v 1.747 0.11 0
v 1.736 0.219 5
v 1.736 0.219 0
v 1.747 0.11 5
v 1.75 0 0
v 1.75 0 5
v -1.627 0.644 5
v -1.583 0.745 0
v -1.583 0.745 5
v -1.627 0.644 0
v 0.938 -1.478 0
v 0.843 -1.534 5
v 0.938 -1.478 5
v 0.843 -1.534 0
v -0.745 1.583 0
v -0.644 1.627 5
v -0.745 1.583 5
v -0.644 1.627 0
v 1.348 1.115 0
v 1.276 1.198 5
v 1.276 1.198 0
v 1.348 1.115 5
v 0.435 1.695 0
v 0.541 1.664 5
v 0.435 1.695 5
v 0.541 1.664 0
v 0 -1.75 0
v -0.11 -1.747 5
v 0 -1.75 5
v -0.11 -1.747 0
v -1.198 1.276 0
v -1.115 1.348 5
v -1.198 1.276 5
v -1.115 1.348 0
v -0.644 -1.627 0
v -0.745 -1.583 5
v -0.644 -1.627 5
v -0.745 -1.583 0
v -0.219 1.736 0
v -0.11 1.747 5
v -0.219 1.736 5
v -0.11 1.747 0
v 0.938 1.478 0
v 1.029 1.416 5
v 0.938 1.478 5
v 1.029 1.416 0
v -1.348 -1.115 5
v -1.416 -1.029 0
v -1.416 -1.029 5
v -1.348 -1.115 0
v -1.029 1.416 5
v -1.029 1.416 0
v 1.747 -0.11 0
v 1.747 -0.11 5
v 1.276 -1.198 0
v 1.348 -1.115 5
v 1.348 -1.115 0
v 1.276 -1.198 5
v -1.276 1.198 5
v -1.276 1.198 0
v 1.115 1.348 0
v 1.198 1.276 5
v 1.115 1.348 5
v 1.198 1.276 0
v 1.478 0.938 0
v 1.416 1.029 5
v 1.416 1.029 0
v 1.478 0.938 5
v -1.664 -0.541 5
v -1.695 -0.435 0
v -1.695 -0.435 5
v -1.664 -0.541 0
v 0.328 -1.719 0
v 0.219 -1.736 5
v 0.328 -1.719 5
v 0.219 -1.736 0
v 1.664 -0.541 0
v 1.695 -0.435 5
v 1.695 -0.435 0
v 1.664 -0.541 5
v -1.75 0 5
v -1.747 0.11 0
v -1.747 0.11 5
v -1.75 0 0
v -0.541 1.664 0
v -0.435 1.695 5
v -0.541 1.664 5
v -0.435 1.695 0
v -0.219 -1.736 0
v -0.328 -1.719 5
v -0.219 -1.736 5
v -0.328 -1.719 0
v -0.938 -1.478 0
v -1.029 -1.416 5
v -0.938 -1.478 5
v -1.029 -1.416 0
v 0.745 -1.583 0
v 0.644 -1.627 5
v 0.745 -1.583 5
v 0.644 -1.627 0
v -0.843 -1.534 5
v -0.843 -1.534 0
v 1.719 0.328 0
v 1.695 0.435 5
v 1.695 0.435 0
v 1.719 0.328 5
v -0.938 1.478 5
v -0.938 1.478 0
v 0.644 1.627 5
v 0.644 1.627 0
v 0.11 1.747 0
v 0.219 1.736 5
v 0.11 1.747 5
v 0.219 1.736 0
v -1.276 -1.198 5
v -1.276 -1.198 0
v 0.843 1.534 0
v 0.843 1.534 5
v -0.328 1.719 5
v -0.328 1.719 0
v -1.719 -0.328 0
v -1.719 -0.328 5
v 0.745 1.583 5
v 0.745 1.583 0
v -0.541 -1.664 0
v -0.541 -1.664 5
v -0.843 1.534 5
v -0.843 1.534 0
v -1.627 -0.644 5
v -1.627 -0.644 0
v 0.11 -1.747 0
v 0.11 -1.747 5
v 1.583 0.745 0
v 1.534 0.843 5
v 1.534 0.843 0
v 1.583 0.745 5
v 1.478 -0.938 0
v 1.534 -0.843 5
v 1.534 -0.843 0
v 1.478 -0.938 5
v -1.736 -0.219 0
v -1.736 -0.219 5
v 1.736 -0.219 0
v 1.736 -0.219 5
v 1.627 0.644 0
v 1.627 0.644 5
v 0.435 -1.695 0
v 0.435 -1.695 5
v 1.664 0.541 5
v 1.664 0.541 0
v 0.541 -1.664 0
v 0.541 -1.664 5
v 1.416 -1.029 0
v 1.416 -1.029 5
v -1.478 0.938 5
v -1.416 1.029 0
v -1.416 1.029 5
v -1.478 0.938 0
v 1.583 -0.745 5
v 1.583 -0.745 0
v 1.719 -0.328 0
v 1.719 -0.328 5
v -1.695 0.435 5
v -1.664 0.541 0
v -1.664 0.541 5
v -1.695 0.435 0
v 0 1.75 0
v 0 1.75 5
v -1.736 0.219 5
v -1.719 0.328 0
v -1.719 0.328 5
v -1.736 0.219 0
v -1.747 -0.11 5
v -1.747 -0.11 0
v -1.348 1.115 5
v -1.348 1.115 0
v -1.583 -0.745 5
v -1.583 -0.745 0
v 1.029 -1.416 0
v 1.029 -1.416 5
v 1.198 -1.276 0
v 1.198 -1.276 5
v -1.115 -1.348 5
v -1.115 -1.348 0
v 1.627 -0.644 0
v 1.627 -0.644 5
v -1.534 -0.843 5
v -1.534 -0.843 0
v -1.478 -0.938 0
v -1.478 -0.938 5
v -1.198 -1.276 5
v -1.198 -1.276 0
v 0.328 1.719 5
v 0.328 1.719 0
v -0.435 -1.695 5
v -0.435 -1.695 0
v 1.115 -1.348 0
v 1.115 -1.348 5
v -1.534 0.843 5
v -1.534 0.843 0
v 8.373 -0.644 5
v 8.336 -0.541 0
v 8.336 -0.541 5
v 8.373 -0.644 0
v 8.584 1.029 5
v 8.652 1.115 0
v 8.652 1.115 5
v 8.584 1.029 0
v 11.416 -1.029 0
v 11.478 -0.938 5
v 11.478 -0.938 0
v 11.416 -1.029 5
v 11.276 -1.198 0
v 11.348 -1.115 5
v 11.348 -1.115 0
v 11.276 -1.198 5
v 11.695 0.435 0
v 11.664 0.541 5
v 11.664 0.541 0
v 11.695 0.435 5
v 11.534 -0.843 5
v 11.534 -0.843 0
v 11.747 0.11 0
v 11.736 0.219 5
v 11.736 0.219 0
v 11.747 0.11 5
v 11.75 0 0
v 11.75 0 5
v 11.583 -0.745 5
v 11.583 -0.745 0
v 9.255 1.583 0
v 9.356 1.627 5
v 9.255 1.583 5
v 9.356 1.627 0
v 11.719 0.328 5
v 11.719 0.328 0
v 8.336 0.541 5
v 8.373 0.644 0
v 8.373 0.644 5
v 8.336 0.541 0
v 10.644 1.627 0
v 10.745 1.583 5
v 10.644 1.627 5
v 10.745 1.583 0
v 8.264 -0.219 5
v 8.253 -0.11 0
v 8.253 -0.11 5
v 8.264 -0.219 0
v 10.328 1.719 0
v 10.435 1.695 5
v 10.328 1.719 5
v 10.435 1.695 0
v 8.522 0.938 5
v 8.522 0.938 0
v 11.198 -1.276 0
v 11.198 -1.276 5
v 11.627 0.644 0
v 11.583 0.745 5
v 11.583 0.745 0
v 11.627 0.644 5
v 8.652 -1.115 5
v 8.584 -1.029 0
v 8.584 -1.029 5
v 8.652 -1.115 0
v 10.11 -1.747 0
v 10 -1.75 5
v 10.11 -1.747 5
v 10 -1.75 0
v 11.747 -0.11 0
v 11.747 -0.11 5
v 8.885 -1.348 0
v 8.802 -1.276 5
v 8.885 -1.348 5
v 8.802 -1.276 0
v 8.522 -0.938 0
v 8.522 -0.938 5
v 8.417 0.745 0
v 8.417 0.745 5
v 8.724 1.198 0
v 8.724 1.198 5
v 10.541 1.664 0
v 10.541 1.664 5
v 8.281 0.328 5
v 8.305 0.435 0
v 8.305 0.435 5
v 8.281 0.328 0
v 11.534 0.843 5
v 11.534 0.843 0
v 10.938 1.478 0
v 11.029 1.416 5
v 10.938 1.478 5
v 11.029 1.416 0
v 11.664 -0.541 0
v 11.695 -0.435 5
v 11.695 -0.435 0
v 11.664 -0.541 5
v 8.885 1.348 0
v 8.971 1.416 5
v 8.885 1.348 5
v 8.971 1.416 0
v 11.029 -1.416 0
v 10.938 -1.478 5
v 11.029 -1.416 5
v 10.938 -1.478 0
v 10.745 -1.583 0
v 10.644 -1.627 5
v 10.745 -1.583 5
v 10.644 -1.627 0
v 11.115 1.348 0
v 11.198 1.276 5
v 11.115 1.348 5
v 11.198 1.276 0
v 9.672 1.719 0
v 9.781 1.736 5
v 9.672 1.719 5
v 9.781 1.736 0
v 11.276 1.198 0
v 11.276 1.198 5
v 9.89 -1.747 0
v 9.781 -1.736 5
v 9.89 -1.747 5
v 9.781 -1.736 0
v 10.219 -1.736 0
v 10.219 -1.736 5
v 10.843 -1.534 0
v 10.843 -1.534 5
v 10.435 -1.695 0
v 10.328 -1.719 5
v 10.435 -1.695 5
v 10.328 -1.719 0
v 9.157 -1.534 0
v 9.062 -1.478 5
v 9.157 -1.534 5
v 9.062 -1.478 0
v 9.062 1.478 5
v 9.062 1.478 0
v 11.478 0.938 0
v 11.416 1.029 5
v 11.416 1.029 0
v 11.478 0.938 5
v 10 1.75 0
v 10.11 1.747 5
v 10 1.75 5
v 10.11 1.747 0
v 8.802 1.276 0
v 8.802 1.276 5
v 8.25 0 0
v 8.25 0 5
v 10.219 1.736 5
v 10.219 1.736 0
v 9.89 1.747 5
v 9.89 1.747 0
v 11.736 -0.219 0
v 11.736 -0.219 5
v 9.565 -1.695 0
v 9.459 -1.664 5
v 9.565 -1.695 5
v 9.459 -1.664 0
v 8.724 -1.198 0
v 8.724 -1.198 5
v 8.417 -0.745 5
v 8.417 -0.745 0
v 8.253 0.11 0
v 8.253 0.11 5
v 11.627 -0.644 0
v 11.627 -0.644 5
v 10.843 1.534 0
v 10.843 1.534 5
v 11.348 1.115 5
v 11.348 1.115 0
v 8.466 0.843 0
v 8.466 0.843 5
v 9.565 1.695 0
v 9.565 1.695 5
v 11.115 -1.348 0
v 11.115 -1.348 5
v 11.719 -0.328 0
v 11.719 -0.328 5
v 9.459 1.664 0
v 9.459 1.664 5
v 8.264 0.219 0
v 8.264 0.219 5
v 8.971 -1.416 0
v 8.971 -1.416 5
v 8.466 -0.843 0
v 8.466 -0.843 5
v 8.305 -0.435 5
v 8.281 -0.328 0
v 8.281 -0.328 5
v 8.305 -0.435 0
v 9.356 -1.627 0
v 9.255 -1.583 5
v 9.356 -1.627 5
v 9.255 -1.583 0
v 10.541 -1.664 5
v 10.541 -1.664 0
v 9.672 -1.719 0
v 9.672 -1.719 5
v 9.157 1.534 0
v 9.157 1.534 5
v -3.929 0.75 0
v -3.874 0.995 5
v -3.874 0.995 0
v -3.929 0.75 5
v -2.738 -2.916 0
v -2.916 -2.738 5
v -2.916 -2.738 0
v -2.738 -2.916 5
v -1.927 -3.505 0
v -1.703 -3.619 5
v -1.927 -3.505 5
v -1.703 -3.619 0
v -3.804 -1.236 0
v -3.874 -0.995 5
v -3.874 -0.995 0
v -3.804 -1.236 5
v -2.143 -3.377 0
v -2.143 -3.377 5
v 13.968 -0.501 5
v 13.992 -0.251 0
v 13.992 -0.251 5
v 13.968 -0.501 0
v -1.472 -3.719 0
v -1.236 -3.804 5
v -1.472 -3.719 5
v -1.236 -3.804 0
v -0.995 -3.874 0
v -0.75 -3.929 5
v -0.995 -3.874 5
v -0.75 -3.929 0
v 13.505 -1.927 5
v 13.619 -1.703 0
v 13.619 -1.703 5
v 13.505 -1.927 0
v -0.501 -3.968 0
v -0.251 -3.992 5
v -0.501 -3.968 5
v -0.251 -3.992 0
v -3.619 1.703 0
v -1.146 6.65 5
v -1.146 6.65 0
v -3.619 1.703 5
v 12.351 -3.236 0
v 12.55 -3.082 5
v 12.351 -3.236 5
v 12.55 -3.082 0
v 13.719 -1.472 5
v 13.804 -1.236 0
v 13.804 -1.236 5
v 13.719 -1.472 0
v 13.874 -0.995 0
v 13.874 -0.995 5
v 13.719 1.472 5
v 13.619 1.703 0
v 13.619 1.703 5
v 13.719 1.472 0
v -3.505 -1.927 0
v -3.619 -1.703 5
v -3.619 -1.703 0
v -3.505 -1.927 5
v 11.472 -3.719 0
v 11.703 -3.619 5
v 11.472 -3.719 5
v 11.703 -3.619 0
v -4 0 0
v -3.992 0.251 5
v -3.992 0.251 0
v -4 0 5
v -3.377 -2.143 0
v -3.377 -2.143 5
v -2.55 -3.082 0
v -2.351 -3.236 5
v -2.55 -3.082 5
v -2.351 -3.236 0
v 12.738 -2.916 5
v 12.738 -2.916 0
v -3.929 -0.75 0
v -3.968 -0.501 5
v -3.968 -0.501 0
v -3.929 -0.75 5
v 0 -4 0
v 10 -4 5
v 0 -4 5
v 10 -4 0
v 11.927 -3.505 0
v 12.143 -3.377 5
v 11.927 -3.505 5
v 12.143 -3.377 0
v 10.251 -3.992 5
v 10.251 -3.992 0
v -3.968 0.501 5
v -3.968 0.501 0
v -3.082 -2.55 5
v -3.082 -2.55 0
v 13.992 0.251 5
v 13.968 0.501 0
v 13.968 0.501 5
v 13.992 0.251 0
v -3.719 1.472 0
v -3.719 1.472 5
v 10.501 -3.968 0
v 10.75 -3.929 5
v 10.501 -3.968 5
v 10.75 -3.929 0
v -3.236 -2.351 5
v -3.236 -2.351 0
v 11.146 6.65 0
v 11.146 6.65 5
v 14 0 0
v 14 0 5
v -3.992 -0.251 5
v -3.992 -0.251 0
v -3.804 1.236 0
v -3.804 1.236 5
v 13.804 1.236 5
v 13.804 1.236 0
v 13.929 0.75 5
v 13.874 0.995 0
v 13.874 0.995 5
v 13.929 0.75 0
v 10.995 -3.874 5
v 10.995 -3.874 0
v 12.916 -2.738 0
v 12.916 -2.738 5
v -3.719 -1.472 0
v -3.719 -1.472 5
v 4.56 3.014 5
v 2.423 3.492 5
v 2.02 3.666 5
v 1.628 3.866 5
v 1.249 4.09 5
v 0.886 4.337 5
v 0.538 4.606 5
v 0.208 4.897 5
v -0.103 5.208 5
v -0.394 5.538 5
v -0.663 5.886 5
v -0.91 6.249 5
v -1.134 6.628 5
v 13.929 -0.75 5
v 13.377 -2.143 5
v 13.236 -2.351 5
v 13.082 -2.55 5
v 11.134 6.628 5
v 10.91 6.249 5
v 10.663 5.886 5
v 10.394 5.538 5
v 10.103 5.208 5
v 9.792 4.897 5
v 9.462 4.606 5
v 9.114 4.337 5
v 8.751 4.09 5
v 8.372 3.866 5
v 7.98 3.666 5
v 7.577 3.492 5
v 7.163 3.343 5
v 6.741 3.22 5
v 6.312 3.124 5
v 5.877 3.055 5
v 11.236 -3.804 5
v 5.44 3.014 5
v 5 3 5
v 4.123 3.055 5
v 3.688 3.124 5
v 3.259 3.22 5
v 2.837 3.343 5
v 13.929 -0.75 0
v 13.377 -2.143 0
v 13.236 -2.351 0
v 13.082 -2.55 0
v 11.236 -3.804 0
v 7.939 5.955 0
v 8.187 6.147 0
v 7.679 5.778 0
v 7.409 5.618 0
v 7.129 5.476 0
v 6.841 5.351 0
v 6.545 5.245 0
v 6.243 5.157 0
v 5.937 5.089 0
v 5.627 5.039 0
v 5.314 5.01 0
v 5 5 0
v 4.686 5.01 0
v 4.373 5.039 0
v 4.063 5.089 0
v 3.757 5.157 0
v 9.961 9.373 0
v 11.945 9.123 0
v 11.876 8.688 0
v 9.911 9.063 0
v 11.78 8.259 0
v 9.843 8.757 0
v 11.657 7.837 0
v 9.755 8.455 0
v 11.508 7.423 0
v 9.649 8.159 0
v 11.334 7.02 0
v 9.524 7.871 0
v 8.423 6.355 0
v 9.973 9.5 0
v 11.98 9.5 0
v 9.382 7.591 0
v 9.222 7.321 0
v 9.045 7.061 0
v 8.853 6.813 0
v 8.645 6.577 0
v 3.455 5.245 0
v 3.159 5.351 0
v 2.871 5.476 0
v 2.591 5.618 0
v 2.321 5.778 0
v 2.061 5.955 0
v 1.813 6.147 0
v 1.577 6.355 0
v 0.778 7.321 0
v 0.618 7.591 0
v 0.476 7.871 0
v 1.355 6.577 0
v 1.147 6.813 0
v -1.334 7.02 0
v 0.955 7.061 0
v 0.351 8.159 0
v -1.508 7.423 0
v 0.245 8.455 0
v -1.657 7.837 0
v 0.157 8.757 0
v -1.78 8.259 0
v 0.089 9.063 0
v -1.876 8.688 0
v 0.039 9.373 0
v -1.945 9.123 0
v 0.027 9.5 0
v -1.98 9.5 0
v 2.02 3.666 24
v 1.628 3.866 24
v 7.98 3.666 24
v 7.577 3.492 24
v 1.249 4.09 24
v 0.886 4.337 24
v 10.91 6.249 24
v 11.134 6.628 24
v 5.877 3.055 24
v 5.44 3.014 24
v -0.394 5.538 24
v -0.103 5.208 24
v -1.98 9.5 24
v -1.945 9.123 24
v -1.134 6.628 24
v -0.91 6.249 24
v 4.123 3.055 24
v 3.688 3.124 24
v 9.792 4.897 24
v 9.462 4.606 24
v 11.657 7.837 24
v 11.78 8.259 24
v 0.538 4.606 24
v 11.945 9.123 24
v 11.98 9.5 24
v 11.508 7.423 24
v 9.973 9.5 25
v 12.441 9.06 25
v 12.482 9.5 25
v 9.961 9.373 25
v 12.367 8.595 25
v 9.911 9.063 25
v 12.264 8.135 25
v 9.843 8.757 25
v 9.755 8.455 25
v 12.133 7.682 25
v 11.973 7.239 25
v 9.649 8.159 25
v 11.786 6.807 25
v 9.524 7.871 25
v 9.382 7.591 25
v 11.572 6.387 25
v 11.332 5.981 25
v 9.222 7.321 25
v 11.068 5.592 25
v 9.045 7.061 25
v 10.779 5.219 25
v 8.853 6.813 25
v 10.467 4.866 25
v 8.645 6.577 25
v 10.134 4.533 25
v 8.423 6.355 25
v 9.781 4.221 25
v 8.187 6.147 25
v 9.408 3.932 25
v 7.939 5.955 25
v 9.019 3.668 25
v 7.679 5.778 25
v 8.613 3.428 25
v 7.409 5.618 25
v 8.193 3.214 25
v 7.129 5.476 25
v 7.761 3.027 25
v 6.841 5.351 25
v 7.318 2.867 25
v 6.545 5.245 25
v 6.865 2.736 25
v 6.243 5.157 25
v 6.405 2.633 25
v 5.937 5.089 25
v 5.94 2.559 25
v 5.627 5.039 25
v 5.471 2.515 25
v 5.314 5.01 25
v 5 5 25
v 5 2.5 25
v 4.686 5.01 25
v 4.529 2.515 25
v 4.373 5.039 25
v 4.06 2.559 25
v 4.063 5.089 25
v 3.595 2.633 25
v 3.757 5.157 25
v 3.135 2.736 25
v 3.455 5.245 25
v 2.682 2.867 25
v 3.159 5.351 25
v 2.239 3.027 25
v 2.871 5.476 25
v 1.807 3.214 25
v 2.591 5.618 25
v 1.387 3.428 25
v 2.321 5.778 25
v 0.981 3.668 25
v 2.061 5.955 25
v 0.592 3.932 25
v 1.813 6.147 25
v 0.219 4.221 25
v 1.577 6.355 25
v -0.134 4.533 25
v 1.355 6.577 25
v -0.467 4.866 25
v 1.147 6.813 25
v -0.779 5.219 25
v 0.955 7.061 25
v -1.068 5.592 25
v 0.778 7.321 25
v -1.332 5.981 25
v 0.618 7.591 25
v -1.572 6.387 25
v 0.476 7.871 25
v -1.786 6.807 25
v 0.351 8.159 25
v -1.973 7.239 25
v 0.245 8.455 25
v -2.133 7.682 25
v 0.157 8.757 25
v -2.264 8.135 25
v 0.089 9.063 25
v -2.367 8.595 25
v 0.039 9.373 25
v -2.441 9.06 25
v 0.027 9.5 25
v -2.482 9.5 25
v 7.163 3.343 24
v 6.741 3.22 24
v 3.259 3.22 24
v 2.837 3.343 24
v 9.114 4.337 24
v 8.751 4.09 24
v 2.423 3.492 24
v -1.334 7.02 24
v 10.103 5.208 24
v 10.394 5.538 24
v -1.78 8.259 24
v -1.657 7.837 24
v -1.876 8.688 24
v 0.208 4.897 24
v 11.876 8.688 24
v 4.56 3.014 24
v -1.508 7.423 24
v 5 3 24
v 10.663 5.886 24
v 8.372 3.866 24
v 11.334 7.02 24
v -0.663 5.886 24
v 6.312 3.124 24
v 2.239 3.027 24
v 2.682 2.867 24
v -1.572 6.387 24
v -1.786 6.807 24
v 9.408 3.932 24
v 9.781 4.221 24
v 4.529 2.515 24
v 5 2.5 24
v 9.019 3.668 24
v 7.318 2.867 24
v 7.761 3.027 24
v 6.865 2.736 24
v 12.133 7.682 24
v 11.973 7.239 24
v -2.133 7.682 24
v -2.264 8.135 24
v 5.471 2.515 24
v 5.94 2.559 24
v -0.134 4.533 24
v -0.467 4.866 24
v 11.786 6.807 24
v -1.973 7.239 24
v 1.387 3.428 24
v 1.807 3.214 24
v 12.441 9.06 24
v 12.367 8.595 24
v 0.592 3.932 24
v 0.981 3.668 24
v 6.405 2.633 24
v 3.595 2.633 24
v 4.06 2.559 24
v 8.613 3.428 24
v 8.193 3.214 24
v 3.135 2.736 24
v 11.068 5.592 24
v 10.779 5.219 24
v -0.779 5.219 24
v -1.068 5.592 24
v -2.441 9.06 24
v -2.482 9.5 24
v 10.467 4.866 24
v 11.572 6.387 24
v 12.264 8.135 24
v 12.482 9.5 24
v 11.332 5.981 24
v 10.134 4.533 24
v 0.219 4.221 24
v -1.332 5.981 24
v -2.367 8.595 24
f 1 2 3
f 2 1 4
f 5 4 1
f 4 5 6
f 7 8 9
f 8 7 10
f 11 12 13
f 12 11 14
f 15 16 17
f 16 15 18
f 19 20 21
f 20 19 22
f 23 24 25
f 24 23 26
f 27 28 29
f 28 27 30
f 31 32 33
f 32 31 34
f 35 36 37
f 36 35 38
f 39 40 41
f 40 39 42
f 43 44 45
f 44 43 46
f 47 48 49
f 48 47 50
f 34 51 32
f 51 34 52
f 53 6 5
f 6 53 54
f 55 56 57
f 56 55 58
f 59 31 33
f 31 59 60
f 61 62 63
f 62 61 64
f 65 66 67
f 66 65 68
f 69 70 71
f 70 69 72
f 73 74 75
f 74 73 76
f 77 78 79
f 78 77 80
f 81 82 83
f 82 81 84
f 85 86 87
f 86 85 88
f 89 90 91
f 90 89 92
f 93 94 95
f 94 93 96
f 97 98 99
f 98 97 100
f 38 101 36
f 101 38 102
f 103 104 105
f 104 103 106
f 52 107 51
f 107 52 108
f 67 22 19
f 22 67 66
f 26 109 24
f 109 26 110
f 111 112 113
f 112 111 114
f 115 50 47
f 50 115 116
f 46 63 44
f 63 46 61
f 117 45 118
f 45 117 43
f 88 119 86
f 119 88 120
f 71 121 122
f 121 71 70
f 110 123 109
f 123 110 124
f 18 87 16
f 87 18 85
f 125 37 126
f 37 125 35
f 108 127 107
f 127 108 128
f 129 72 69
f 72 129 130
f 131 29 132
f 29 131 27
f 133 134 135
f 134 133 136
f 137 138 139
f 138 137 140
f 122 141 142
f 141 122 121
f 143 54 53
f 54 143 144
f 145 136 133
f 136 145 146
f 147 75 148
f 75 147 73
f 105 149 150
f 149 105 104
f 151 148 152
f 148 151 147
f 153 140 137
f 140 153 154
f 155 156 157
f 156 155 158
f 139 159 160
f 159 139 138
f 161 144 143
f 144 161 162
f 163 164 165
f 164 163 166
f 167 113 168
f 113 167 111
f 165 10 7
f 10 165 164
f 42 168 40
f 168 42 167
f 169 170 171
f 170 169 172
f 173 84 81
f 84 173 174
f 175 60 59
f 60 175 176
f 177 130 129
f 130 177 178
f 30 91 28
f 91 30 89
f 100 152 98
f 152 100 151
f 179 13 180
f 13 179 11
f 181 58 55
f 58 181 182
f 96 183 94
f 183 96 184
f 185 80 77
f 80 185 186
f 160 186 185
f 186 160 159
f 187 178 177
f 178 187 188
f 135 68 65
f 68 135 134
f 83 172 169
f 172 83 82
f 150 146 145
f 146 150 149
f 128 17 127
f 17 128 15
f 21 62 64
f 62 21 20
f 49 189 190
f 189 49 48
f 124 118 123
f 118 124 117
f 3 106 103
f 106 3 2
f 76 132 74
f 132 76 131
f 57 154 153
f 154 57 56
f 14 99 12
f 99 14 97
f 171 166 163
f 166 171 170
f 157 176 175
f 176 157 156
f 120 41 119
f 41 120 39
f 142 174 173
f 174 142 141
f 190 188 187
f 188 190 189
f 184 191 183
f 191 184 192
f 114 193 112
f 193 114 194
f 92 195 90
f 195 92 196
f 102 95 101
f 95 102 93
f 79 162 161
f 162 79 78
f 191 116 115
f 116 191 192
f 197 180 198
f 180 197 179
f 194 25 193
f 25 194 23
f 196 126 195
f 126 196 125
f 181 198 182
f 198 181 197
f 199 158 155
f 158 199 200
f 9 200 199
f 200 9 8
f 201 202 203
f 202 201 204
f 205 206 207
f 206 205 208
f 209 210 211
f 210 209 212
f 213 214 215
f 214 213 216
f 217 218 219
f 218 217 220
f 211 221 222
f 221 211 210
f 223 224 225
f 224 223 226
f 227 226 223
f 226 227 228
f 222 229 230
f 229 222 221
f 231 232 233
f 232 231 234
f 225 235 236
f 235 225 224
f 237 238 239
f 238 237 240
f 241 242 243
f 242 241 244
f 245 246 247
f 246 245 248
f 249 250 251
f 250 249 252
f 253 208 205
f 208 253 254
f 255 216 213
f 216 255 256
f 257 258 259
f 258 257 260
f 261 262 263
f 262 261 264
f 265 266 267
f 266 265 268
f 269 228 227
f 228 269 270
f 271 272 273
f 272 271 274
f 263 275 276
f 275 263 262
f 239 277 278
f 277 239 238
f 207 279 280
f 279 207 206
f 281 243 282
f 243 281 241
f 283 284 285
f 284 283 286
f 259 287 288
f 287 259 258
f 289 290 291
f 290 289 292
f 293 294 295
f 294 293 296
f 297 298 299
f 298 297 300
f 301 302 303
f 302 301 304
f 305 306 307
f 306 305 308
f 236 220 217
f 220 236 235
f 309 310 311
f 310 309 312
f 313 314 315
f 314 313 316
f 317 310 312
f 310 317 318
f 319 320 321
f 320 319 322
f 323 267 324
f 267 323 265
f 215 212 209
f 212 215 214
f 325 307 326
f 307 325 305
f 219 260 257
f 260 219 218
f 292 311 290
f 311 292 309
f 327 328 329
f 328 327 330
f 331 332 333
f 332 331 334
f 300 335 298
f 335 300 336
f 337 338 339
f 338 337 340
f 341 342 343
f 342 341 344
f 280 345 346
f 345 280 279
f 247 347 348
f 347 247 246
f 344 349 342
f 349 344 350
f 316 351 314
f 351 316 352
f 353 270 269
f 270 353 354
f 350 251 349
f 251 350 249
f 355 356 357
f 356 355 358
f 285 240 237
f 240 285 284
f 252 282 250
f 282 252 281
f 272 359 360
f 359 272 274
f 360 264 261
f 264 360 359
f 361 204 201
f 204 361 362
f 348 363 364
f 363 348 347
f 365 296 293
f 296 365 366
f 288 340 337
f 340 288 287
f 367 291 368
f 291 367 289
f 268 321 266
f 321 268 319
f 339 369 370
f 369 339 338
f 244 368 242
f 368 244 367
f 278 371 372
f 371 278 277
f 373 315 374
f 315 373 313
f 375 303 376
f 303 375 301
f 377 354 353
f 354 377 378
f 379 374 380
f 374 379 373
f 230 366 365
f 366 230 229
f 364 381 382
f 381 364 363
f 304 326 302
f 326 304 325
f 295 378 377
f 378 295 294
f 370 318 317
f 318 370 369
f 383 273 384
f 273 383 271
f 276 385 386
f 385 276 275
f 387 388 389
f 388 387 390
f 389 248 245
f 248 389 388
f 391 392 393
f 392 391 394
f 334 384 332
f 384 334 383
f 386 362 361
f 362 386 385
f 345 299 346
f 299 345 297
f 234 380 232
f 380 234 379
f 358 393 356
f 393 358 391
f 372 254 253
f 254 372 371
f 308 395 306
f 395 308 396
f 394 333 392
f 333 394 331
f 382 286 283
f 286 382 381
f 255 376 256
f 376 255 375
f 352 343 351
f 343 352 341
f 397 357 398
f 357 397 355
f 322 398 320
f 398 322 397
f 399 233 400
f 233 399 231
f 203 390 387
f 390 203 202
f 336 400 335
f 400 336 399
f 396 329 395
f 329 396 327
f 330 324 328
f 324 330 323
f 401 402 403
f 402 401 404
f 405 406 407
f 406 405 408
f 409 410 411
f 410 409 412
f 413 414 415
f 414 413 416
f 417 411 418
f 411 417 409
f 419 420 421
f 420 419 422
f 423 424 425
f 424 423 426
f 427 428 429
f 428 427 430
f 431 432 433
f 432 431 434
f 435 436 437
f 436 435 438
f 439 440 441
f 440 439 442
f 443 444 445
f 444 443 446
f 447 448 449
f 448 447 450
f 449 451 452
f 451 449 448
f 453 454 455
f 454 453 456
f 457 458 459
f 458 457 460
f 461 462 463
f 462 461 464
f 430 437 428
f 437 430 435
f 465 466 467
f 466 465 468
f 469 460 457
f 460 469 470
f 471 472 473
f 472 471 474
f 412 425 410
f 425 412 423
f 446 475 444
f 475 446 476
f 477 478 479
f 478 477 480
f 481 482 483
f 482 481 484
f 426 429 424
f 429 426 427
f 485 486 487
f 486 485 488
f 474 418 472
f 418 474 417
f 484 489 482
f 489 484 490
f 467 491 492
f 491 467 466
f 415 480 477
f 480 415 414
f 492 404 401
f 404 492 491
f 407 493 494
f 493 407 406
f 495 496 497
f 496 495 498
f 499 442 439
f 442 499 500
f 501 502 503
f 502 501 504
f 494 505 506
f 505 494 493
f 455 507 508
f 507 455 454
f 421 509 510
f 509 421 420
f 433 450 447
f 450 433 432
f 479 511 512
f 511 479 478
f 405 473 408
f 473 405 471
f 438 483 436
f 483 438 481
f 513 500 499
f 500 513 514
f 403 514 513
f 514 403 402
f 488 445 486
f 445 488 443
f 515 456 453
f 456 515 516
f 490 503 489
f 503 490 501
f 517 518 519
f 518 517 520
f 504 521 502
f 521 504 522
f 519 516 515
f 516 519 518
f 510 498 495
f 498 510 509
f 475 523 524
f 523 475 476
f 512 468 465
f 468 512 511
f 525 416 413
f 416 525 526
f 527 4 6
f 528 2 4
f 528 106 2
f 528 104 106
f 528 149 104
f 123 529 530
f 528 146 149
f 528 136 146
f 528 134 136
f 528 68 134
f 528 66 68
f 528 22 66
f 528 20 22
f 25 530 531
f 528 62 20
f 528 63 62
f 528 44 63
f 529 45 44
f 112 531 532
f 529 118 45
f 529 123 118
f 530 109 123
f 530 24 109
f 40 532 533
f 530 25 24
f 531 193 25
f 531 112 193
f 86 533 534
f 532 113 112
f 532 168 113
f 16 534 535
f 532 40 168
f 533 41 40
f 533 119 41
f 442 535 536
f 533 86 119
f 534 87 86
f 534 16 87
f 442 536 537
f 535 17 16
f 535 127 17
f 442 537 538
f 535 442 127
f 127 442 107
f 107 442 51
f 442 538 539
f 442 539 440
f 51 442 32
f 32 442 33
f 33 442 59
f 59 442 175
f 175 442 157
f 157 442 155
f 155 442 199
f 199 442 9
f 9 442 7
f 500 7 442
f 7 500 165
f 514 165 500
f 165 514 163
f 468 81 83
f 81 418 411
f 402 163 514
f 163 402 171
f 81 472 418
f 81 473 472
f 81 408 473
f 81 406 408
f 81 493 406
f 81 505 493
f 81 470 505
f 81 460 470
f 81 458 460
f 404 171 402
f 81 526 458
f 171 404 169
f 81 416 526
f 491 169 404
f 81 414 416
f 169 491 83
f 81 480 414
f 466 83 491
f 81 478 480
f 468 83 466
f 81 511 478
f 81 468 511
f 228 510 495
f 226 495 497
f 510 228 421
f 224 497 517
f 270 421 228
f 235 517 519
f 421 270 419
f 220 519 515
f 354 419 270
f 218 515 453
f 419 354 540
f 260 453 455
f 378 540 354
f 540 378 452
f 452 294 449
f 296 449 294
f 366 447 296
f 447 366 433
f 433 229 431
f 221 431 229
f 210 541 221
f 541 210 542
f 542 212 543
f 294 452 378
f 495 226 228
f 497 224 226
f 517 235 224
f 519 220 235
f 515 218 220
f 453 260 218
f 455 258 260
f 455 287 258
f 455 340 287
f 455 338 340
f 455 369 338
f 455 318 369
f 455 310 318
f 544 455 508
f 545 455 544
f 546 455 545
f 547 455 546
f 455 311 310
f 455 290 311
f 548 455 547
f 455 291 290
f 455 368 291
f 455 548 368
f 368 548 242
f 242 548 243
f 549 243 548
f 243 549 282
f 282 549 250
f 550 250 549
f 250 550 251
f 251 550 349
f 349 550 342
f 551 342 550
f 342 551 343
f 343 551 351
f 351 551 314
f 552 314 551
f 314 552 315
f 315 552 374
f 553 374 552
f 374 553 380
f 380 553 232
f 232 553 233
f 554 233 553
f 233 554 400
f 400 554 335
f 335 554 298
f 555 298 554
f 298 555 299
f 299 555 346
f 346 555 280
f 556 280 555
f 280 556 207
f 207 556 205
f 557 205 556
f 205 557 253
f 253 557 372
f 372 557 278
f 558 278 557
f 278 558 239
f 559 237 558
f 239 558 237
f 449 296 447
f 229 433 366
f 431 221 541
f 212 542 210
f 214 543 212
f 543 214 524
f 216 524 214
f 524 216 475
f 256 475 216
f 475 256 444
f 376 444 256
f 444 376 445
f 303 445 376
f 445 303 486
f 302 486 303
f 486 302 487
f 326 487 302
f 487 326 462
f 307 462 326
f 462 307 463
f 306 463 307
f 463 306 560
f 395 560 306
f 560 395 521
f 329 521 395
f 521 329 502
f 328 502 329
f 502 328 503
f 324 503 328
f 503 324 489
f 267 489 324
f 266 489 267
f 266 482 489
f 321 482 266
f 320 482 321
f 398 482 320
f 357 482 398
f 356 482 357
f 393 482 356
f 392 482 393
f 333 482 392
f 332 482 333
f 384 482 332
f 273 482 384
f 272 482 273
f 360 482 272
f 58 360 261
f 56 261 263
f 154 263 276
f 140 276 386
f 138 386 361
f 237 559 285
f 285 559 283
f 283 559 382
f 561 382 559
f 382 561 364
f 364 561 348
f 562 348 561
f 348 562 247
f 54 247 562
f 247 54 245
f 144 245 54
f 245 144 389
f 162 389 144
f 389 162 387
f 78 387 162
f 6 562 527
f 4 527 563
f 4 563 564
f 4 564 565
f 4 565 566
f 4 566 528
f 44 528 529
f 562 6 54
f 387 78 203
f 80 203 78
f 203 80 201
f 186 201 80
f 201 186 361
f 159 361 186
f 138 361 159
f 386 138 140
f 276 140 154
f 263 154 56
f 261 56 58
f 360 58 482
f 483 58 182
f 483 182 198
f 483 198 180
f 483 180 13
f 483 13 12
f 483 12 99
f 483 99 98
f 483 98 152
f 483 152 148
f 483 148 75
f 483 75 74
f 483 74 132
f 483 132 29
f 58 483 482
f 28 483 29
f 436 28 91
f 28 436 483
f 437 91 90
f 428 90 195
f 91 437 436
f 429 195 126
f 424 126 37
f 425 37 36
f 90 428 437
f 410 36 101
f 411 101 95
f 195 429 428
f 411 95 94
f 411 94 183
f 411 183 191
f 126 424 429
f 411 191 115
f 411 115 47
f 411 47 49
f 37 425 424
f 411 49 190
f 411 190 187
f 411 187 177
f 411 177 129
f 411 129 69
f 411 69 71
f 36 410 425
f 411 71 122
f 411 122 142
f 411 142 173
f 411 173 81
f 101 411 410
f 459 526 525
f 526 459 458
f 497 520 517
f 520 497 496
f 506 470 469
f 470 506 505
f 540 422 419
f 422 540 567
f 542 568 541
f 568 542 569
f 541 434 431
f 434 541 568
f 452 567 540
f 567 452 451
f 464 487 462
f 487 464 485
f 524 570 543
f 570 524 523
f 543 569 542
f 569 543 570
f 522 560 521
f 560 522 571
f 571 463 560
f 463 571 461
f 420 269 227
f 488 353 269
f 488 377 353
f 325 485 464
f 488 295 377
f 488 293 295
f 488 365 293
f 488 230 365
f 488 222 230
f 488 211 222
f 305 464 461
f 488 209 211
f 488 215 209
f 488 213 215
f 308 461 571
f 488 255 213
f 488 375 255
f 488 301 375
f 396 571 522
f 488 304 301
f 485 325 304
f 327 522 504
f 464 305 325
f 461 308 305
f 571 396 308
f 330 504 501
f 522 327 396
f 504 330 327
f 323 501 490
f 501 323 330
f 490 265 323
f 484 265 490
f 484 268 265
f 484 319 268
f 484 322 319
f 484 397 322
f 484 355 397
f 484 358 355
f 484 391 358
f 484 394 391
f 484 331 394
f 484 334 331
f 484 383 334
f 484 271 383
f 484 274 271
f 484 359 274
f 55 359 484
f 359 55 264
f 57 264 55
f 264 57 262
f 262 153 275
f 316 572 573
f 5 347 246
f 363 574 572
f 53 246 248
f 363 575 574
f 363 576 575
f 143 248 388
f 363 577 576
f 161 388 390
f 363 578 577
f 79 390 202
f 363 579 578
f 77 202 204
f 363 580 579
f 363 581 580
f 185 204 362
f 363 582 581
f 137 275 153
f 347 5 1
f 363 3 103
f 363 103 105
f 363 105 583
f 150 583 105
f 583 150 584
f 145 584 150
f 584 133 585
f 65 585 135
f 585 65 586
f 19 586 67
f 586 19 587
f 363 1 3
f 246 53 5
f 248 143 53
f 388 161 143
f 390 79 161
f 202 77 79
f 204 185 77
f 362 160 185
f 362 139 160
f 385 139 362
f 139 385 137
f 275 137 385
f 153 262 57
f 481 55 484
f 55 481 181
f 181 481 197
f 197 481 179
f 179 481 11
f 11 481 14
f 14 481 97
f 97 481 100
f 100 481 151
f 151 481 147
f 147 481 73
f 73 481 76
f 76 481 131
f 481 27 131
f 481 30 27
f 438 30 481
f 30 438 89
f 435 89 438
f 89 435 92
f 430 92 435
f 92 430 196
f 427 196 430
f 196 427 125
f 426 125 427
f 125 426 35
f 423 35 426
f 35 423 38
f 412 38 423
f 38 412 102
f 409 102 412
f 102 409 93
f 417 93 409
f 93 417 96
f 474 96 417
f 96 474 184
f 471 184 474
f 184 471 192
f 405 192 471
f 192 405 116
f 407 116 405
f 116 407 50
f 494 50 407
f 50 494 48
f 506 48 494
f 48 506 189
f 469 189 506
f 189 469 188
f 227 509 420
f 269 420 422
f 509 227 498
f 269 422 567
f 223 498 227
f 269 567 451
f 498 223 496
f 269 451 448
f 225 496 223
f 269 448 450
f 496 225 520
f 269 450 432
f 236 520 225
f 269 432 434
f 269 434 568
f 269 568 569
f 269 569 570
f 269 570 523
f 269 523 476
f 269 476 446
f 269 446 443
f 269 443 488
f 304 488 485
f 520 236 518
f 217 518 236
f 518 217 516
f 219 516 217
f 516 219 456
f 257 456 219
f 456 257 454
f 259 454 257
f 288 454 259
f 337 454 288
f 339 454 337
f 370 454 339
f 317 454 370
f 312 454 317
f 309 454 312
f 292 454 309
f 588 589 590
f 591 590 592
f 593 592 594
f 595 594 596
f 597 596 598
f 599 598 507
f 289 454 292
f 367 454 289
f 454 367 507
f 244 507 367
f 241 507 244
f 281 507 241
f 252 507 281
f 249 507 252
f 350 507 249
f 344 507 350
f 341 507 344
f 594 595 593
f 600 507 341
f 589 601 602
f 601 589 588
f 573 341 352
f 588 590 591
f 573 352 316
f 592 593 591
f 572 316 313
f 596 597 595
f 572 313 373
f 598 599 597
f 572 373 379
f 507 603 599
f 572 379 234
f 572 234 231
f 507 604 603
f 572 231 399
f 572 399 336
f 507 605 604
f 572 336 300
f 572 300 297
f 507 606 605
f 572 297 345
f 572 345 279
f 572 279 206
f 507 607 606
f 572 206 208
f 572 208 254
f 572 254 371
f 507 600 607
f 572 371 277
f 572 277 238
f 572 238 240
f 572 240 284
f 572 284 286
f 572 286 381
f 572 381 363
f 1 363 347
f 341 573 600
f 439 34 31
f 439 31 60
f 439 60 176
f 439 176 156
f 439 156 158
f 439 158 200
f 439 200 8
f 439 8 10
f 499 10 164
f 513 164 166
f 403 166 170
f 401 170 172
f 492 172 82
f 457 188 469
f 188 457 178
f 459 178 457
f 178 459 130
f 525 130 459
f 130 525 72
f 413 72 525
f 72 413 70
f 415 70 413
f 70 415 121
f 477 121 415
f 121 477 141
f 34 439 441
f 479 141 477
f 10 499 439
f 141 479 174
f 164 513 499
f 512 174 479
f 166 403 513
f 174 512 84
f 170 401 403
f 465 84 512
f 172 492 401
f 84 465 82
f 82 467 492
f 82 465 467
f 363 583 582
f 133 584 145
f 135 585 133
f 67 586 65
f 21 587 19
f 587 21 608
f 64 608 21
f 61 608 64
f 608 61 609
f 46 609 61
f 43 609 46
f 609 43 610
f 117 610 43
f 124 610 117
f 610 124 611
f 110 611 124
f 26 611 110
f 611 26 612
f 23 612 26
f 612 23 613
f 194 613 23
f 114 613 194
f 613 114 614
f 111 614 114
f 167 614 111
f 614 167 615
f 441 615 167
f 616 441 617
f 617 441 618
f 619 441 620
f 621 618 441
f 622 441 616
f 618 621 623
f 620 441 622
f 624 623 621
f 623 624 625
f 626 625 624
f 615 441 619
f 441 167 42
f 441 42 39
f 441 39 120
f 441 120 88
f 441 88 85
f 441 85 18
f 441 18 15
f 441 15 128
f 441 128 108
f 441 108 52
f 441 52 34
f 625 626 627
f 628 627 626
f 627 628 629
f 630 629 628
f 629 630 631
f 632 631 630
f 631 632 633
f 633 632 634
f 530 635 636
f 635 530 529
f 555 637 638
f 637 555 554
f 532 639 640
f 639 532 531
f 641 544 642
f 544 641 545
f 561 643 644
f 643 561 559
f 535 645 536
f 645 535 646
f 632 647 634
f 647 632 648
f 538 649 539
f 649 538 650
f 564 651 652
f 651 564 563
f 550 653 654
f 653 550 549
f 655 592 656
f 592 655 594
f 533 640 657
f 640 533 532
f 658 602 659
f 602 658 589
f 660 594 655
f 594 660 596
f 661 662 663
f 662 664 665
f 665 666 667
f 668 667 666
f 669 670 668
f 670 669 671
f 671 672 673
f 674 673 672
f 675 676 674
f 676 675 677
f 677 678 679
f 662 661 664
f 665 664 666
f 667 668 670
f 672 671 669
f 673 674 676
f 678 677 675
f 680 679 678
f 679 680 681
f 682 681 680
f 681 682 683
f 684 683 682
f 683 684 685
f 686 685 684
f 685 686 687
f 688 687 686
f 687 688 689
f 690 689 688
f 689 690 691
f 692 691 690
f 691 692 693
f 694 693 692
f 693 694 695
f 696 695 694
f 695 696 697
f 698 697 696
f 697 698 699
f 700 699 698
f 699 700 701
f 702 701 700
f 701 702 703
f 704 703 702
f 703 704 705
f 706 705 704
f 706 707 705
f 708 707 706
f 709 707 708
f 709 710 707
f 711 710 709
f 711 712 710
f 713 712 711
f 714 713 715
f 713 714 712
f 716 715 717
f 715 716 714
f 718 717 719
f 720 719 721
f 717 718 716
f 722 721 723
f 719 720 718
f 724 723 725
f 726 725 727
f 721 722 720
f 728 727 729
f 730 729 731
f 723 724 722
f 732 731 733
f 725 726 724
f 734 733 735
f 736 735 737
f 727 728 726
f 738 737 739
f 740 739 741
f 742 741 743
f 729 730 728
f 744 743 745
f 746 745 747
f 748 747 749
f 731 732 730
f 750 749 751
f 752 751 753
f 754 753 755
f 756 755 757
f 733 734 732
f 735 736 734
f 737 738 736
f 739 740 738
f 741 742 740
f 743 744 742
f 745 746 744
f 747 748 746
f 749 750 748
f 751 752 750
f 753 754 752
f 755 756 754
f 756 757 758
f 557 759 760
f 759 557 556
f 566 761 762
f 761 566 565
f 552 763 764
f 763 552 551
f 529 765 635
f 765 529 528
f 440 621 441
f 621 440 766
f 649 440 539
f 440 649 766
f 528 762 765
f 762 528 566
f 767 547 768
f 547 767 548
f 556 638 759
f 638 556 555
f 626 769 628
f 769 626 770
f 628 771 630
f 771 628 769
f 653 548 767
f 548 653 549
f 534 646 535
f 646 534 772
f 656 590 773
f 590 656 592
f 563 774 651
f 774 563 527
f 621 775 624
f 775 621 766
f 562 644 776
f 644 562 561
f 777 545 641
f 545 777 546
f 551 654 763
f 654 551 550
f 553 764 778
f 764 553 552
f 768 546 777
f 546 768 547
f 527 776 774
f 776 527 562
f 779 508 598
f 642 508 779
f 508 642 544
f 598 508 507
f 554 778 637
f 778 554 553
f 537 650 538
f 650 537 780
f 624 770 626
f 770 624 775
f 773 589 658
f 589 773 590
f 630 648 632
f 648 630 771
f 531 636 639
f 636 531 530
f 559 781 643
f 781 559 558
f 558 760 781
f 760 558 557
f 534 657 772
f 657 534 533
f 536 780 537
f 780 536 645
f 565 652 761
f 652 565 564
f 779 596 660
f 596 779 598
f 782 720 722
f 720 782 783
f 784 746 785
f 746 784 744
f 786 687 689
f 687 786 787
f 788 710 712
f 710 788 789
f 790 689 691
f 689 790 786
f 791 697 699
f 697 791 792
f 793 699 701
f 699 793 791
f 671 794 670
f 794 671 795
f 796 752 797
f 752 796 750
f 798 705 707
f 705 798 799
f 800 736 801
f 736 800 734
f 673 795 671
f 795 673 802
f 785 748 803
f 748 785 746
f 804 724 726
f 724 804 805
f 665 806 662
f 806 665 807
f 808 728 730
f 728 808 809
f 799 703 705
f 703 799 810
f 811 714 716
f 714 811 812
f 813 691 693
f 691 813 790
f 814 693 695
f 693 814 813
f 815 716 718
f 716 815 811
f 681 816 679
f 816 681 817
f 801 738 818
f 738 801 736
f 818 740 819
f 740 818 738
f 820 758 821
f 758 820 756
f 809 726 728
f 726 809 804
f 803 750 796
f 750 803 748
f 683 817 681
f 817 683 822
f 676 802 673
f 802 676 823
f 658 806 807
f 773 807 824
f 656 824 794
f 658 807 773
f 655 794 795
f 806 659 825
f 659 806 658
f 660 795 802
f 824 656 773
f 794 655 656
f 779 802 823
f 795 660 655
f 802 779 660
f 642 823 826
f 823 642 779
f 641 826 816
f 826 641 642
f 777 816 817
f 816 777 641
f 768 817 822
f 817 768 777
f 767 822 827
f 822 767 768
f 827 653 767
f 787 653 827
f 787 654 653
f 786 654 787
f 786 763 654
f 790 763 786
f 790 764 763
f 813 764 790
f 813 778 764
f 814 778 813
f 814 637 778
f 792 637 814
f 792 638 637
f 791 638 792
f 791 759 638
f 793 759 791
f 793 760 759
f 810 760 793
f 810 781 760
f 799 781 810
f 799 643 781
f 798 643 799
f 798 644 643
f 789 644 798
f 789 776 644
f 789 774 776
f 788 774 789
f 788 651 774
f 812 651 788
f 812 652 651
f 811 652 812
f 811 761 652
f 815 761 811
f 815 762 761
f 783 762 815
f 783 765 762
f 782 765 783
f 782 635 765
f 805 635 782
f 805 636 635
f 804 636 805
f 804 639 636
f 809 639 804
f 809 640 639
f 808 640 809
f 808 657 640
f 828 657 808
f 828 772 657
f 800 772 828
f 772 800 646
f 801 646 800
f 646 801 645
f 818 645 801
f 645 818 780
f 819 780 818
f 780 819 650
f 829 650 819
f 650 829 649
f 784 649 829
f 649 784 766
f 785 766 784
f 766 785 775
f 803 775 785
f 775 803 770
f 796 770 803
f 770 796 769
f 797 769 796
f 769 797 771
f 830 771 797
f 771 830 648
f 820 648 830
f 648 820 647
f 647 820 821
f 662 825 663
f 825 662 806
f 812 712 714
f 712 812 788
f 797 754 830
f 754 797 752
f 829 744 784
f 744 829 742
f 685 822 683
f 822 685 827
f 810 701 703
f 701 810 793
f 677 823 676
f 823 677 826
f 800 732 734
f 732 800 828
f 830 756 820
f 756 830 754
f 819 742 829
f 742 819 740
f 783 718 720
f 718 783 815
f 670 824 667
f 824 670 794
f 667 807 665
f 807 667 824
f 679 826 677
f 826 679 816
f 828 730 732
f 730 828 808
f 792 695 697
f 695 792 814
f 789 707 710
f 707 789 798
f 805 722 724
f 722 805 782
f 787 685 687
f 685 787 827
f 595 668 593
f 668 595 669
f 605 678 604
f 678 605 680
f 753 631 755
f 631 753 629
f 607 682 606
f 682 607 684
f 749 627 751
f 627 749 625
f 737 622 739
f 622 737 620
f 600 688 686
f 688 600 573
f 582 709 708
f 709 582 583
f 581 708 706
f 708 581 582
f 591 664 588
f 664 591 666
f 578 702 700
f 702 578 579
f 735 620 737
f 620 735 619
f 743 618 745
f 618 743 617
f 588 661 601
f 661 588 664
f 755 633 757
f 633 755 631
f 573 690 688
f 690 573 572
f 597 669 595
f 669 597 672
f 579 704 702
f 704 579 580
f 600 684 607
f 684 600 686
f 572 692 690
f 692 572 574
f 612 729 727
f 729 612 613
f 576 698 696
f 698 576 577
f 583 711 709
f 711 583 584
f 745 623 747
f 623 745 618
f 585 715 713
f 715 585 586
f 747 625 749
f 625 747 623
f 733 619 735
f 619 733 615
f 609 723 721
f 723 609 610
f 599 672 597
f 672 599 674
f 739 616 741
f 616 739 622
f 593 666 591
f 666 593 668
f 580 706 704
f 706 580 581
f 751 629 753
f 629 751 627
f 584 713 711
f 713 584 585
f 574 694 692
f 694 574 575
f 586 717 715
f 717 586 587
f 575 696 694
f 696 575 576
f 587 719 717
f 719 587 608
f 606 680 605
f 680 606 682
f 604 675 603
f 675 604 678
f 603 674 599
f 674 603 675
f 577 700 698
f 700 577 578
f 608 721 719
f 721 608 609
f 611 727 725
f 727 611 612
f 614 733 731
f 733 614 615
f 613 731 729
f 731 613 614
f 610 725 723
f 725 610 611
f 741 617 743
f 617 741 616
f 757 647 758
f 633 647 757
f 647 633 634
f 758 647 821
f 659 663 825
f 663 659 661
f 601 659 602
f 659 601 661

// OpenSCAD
// file: parametros.scad
// Parametros - Editar apenas este ficheiro para alterar os restantes automaticamente
$fn = 100;

diam_parafuso = 3; // em mm. para um M2x20 o diâmetro é 2.
dist_orificios = 10; // distancia entre orificios para as barras
altura = 4; // altura das barras

// Comprimento máximo da barra. Para uma mesa de impressão de ± 20x20cm a dist máxima será sqrt(20**2 +20**2) ±= 28cm. O comprimento da barra será calculado de forma automaticamente de forma a ser multiplo da distância entre orifícios. 
comprimento_maximo = 220;
// main file
include <parametros.scad>

difference() 
{
	union()
	{
		hull() 
		{
			cylinder(5, d = diam_parafuso + 5);
			translate([dist_orificios*1, 0, 0]) cylinder(5, d = diam_parafuso + 5);
			translate([dist_orificios/2,dist_orificios,0]) cylinder(5, d = diam_parafuso + 5);
		}
		translate([dist_orificios/2,dist_orificios,0]) cylinder(25, d = 14);
		translate([dist_orificios/2,dist_orificios,24]) cylinder(1, d = 15);
	}
    for(i = [0 : 1]) 
	{
        translate([i*dist_orificios, 0, -1]) cylinder(10, d = diam_parafuso + 0.5);
    }
	translate([dist_orificios/2,dist_orificios,-1]) cylinder(27, d = 10);
	translate([-dist_orificios/2, dist_orificios*0.95,  -1]) cube([22, 20, 27]);
}
